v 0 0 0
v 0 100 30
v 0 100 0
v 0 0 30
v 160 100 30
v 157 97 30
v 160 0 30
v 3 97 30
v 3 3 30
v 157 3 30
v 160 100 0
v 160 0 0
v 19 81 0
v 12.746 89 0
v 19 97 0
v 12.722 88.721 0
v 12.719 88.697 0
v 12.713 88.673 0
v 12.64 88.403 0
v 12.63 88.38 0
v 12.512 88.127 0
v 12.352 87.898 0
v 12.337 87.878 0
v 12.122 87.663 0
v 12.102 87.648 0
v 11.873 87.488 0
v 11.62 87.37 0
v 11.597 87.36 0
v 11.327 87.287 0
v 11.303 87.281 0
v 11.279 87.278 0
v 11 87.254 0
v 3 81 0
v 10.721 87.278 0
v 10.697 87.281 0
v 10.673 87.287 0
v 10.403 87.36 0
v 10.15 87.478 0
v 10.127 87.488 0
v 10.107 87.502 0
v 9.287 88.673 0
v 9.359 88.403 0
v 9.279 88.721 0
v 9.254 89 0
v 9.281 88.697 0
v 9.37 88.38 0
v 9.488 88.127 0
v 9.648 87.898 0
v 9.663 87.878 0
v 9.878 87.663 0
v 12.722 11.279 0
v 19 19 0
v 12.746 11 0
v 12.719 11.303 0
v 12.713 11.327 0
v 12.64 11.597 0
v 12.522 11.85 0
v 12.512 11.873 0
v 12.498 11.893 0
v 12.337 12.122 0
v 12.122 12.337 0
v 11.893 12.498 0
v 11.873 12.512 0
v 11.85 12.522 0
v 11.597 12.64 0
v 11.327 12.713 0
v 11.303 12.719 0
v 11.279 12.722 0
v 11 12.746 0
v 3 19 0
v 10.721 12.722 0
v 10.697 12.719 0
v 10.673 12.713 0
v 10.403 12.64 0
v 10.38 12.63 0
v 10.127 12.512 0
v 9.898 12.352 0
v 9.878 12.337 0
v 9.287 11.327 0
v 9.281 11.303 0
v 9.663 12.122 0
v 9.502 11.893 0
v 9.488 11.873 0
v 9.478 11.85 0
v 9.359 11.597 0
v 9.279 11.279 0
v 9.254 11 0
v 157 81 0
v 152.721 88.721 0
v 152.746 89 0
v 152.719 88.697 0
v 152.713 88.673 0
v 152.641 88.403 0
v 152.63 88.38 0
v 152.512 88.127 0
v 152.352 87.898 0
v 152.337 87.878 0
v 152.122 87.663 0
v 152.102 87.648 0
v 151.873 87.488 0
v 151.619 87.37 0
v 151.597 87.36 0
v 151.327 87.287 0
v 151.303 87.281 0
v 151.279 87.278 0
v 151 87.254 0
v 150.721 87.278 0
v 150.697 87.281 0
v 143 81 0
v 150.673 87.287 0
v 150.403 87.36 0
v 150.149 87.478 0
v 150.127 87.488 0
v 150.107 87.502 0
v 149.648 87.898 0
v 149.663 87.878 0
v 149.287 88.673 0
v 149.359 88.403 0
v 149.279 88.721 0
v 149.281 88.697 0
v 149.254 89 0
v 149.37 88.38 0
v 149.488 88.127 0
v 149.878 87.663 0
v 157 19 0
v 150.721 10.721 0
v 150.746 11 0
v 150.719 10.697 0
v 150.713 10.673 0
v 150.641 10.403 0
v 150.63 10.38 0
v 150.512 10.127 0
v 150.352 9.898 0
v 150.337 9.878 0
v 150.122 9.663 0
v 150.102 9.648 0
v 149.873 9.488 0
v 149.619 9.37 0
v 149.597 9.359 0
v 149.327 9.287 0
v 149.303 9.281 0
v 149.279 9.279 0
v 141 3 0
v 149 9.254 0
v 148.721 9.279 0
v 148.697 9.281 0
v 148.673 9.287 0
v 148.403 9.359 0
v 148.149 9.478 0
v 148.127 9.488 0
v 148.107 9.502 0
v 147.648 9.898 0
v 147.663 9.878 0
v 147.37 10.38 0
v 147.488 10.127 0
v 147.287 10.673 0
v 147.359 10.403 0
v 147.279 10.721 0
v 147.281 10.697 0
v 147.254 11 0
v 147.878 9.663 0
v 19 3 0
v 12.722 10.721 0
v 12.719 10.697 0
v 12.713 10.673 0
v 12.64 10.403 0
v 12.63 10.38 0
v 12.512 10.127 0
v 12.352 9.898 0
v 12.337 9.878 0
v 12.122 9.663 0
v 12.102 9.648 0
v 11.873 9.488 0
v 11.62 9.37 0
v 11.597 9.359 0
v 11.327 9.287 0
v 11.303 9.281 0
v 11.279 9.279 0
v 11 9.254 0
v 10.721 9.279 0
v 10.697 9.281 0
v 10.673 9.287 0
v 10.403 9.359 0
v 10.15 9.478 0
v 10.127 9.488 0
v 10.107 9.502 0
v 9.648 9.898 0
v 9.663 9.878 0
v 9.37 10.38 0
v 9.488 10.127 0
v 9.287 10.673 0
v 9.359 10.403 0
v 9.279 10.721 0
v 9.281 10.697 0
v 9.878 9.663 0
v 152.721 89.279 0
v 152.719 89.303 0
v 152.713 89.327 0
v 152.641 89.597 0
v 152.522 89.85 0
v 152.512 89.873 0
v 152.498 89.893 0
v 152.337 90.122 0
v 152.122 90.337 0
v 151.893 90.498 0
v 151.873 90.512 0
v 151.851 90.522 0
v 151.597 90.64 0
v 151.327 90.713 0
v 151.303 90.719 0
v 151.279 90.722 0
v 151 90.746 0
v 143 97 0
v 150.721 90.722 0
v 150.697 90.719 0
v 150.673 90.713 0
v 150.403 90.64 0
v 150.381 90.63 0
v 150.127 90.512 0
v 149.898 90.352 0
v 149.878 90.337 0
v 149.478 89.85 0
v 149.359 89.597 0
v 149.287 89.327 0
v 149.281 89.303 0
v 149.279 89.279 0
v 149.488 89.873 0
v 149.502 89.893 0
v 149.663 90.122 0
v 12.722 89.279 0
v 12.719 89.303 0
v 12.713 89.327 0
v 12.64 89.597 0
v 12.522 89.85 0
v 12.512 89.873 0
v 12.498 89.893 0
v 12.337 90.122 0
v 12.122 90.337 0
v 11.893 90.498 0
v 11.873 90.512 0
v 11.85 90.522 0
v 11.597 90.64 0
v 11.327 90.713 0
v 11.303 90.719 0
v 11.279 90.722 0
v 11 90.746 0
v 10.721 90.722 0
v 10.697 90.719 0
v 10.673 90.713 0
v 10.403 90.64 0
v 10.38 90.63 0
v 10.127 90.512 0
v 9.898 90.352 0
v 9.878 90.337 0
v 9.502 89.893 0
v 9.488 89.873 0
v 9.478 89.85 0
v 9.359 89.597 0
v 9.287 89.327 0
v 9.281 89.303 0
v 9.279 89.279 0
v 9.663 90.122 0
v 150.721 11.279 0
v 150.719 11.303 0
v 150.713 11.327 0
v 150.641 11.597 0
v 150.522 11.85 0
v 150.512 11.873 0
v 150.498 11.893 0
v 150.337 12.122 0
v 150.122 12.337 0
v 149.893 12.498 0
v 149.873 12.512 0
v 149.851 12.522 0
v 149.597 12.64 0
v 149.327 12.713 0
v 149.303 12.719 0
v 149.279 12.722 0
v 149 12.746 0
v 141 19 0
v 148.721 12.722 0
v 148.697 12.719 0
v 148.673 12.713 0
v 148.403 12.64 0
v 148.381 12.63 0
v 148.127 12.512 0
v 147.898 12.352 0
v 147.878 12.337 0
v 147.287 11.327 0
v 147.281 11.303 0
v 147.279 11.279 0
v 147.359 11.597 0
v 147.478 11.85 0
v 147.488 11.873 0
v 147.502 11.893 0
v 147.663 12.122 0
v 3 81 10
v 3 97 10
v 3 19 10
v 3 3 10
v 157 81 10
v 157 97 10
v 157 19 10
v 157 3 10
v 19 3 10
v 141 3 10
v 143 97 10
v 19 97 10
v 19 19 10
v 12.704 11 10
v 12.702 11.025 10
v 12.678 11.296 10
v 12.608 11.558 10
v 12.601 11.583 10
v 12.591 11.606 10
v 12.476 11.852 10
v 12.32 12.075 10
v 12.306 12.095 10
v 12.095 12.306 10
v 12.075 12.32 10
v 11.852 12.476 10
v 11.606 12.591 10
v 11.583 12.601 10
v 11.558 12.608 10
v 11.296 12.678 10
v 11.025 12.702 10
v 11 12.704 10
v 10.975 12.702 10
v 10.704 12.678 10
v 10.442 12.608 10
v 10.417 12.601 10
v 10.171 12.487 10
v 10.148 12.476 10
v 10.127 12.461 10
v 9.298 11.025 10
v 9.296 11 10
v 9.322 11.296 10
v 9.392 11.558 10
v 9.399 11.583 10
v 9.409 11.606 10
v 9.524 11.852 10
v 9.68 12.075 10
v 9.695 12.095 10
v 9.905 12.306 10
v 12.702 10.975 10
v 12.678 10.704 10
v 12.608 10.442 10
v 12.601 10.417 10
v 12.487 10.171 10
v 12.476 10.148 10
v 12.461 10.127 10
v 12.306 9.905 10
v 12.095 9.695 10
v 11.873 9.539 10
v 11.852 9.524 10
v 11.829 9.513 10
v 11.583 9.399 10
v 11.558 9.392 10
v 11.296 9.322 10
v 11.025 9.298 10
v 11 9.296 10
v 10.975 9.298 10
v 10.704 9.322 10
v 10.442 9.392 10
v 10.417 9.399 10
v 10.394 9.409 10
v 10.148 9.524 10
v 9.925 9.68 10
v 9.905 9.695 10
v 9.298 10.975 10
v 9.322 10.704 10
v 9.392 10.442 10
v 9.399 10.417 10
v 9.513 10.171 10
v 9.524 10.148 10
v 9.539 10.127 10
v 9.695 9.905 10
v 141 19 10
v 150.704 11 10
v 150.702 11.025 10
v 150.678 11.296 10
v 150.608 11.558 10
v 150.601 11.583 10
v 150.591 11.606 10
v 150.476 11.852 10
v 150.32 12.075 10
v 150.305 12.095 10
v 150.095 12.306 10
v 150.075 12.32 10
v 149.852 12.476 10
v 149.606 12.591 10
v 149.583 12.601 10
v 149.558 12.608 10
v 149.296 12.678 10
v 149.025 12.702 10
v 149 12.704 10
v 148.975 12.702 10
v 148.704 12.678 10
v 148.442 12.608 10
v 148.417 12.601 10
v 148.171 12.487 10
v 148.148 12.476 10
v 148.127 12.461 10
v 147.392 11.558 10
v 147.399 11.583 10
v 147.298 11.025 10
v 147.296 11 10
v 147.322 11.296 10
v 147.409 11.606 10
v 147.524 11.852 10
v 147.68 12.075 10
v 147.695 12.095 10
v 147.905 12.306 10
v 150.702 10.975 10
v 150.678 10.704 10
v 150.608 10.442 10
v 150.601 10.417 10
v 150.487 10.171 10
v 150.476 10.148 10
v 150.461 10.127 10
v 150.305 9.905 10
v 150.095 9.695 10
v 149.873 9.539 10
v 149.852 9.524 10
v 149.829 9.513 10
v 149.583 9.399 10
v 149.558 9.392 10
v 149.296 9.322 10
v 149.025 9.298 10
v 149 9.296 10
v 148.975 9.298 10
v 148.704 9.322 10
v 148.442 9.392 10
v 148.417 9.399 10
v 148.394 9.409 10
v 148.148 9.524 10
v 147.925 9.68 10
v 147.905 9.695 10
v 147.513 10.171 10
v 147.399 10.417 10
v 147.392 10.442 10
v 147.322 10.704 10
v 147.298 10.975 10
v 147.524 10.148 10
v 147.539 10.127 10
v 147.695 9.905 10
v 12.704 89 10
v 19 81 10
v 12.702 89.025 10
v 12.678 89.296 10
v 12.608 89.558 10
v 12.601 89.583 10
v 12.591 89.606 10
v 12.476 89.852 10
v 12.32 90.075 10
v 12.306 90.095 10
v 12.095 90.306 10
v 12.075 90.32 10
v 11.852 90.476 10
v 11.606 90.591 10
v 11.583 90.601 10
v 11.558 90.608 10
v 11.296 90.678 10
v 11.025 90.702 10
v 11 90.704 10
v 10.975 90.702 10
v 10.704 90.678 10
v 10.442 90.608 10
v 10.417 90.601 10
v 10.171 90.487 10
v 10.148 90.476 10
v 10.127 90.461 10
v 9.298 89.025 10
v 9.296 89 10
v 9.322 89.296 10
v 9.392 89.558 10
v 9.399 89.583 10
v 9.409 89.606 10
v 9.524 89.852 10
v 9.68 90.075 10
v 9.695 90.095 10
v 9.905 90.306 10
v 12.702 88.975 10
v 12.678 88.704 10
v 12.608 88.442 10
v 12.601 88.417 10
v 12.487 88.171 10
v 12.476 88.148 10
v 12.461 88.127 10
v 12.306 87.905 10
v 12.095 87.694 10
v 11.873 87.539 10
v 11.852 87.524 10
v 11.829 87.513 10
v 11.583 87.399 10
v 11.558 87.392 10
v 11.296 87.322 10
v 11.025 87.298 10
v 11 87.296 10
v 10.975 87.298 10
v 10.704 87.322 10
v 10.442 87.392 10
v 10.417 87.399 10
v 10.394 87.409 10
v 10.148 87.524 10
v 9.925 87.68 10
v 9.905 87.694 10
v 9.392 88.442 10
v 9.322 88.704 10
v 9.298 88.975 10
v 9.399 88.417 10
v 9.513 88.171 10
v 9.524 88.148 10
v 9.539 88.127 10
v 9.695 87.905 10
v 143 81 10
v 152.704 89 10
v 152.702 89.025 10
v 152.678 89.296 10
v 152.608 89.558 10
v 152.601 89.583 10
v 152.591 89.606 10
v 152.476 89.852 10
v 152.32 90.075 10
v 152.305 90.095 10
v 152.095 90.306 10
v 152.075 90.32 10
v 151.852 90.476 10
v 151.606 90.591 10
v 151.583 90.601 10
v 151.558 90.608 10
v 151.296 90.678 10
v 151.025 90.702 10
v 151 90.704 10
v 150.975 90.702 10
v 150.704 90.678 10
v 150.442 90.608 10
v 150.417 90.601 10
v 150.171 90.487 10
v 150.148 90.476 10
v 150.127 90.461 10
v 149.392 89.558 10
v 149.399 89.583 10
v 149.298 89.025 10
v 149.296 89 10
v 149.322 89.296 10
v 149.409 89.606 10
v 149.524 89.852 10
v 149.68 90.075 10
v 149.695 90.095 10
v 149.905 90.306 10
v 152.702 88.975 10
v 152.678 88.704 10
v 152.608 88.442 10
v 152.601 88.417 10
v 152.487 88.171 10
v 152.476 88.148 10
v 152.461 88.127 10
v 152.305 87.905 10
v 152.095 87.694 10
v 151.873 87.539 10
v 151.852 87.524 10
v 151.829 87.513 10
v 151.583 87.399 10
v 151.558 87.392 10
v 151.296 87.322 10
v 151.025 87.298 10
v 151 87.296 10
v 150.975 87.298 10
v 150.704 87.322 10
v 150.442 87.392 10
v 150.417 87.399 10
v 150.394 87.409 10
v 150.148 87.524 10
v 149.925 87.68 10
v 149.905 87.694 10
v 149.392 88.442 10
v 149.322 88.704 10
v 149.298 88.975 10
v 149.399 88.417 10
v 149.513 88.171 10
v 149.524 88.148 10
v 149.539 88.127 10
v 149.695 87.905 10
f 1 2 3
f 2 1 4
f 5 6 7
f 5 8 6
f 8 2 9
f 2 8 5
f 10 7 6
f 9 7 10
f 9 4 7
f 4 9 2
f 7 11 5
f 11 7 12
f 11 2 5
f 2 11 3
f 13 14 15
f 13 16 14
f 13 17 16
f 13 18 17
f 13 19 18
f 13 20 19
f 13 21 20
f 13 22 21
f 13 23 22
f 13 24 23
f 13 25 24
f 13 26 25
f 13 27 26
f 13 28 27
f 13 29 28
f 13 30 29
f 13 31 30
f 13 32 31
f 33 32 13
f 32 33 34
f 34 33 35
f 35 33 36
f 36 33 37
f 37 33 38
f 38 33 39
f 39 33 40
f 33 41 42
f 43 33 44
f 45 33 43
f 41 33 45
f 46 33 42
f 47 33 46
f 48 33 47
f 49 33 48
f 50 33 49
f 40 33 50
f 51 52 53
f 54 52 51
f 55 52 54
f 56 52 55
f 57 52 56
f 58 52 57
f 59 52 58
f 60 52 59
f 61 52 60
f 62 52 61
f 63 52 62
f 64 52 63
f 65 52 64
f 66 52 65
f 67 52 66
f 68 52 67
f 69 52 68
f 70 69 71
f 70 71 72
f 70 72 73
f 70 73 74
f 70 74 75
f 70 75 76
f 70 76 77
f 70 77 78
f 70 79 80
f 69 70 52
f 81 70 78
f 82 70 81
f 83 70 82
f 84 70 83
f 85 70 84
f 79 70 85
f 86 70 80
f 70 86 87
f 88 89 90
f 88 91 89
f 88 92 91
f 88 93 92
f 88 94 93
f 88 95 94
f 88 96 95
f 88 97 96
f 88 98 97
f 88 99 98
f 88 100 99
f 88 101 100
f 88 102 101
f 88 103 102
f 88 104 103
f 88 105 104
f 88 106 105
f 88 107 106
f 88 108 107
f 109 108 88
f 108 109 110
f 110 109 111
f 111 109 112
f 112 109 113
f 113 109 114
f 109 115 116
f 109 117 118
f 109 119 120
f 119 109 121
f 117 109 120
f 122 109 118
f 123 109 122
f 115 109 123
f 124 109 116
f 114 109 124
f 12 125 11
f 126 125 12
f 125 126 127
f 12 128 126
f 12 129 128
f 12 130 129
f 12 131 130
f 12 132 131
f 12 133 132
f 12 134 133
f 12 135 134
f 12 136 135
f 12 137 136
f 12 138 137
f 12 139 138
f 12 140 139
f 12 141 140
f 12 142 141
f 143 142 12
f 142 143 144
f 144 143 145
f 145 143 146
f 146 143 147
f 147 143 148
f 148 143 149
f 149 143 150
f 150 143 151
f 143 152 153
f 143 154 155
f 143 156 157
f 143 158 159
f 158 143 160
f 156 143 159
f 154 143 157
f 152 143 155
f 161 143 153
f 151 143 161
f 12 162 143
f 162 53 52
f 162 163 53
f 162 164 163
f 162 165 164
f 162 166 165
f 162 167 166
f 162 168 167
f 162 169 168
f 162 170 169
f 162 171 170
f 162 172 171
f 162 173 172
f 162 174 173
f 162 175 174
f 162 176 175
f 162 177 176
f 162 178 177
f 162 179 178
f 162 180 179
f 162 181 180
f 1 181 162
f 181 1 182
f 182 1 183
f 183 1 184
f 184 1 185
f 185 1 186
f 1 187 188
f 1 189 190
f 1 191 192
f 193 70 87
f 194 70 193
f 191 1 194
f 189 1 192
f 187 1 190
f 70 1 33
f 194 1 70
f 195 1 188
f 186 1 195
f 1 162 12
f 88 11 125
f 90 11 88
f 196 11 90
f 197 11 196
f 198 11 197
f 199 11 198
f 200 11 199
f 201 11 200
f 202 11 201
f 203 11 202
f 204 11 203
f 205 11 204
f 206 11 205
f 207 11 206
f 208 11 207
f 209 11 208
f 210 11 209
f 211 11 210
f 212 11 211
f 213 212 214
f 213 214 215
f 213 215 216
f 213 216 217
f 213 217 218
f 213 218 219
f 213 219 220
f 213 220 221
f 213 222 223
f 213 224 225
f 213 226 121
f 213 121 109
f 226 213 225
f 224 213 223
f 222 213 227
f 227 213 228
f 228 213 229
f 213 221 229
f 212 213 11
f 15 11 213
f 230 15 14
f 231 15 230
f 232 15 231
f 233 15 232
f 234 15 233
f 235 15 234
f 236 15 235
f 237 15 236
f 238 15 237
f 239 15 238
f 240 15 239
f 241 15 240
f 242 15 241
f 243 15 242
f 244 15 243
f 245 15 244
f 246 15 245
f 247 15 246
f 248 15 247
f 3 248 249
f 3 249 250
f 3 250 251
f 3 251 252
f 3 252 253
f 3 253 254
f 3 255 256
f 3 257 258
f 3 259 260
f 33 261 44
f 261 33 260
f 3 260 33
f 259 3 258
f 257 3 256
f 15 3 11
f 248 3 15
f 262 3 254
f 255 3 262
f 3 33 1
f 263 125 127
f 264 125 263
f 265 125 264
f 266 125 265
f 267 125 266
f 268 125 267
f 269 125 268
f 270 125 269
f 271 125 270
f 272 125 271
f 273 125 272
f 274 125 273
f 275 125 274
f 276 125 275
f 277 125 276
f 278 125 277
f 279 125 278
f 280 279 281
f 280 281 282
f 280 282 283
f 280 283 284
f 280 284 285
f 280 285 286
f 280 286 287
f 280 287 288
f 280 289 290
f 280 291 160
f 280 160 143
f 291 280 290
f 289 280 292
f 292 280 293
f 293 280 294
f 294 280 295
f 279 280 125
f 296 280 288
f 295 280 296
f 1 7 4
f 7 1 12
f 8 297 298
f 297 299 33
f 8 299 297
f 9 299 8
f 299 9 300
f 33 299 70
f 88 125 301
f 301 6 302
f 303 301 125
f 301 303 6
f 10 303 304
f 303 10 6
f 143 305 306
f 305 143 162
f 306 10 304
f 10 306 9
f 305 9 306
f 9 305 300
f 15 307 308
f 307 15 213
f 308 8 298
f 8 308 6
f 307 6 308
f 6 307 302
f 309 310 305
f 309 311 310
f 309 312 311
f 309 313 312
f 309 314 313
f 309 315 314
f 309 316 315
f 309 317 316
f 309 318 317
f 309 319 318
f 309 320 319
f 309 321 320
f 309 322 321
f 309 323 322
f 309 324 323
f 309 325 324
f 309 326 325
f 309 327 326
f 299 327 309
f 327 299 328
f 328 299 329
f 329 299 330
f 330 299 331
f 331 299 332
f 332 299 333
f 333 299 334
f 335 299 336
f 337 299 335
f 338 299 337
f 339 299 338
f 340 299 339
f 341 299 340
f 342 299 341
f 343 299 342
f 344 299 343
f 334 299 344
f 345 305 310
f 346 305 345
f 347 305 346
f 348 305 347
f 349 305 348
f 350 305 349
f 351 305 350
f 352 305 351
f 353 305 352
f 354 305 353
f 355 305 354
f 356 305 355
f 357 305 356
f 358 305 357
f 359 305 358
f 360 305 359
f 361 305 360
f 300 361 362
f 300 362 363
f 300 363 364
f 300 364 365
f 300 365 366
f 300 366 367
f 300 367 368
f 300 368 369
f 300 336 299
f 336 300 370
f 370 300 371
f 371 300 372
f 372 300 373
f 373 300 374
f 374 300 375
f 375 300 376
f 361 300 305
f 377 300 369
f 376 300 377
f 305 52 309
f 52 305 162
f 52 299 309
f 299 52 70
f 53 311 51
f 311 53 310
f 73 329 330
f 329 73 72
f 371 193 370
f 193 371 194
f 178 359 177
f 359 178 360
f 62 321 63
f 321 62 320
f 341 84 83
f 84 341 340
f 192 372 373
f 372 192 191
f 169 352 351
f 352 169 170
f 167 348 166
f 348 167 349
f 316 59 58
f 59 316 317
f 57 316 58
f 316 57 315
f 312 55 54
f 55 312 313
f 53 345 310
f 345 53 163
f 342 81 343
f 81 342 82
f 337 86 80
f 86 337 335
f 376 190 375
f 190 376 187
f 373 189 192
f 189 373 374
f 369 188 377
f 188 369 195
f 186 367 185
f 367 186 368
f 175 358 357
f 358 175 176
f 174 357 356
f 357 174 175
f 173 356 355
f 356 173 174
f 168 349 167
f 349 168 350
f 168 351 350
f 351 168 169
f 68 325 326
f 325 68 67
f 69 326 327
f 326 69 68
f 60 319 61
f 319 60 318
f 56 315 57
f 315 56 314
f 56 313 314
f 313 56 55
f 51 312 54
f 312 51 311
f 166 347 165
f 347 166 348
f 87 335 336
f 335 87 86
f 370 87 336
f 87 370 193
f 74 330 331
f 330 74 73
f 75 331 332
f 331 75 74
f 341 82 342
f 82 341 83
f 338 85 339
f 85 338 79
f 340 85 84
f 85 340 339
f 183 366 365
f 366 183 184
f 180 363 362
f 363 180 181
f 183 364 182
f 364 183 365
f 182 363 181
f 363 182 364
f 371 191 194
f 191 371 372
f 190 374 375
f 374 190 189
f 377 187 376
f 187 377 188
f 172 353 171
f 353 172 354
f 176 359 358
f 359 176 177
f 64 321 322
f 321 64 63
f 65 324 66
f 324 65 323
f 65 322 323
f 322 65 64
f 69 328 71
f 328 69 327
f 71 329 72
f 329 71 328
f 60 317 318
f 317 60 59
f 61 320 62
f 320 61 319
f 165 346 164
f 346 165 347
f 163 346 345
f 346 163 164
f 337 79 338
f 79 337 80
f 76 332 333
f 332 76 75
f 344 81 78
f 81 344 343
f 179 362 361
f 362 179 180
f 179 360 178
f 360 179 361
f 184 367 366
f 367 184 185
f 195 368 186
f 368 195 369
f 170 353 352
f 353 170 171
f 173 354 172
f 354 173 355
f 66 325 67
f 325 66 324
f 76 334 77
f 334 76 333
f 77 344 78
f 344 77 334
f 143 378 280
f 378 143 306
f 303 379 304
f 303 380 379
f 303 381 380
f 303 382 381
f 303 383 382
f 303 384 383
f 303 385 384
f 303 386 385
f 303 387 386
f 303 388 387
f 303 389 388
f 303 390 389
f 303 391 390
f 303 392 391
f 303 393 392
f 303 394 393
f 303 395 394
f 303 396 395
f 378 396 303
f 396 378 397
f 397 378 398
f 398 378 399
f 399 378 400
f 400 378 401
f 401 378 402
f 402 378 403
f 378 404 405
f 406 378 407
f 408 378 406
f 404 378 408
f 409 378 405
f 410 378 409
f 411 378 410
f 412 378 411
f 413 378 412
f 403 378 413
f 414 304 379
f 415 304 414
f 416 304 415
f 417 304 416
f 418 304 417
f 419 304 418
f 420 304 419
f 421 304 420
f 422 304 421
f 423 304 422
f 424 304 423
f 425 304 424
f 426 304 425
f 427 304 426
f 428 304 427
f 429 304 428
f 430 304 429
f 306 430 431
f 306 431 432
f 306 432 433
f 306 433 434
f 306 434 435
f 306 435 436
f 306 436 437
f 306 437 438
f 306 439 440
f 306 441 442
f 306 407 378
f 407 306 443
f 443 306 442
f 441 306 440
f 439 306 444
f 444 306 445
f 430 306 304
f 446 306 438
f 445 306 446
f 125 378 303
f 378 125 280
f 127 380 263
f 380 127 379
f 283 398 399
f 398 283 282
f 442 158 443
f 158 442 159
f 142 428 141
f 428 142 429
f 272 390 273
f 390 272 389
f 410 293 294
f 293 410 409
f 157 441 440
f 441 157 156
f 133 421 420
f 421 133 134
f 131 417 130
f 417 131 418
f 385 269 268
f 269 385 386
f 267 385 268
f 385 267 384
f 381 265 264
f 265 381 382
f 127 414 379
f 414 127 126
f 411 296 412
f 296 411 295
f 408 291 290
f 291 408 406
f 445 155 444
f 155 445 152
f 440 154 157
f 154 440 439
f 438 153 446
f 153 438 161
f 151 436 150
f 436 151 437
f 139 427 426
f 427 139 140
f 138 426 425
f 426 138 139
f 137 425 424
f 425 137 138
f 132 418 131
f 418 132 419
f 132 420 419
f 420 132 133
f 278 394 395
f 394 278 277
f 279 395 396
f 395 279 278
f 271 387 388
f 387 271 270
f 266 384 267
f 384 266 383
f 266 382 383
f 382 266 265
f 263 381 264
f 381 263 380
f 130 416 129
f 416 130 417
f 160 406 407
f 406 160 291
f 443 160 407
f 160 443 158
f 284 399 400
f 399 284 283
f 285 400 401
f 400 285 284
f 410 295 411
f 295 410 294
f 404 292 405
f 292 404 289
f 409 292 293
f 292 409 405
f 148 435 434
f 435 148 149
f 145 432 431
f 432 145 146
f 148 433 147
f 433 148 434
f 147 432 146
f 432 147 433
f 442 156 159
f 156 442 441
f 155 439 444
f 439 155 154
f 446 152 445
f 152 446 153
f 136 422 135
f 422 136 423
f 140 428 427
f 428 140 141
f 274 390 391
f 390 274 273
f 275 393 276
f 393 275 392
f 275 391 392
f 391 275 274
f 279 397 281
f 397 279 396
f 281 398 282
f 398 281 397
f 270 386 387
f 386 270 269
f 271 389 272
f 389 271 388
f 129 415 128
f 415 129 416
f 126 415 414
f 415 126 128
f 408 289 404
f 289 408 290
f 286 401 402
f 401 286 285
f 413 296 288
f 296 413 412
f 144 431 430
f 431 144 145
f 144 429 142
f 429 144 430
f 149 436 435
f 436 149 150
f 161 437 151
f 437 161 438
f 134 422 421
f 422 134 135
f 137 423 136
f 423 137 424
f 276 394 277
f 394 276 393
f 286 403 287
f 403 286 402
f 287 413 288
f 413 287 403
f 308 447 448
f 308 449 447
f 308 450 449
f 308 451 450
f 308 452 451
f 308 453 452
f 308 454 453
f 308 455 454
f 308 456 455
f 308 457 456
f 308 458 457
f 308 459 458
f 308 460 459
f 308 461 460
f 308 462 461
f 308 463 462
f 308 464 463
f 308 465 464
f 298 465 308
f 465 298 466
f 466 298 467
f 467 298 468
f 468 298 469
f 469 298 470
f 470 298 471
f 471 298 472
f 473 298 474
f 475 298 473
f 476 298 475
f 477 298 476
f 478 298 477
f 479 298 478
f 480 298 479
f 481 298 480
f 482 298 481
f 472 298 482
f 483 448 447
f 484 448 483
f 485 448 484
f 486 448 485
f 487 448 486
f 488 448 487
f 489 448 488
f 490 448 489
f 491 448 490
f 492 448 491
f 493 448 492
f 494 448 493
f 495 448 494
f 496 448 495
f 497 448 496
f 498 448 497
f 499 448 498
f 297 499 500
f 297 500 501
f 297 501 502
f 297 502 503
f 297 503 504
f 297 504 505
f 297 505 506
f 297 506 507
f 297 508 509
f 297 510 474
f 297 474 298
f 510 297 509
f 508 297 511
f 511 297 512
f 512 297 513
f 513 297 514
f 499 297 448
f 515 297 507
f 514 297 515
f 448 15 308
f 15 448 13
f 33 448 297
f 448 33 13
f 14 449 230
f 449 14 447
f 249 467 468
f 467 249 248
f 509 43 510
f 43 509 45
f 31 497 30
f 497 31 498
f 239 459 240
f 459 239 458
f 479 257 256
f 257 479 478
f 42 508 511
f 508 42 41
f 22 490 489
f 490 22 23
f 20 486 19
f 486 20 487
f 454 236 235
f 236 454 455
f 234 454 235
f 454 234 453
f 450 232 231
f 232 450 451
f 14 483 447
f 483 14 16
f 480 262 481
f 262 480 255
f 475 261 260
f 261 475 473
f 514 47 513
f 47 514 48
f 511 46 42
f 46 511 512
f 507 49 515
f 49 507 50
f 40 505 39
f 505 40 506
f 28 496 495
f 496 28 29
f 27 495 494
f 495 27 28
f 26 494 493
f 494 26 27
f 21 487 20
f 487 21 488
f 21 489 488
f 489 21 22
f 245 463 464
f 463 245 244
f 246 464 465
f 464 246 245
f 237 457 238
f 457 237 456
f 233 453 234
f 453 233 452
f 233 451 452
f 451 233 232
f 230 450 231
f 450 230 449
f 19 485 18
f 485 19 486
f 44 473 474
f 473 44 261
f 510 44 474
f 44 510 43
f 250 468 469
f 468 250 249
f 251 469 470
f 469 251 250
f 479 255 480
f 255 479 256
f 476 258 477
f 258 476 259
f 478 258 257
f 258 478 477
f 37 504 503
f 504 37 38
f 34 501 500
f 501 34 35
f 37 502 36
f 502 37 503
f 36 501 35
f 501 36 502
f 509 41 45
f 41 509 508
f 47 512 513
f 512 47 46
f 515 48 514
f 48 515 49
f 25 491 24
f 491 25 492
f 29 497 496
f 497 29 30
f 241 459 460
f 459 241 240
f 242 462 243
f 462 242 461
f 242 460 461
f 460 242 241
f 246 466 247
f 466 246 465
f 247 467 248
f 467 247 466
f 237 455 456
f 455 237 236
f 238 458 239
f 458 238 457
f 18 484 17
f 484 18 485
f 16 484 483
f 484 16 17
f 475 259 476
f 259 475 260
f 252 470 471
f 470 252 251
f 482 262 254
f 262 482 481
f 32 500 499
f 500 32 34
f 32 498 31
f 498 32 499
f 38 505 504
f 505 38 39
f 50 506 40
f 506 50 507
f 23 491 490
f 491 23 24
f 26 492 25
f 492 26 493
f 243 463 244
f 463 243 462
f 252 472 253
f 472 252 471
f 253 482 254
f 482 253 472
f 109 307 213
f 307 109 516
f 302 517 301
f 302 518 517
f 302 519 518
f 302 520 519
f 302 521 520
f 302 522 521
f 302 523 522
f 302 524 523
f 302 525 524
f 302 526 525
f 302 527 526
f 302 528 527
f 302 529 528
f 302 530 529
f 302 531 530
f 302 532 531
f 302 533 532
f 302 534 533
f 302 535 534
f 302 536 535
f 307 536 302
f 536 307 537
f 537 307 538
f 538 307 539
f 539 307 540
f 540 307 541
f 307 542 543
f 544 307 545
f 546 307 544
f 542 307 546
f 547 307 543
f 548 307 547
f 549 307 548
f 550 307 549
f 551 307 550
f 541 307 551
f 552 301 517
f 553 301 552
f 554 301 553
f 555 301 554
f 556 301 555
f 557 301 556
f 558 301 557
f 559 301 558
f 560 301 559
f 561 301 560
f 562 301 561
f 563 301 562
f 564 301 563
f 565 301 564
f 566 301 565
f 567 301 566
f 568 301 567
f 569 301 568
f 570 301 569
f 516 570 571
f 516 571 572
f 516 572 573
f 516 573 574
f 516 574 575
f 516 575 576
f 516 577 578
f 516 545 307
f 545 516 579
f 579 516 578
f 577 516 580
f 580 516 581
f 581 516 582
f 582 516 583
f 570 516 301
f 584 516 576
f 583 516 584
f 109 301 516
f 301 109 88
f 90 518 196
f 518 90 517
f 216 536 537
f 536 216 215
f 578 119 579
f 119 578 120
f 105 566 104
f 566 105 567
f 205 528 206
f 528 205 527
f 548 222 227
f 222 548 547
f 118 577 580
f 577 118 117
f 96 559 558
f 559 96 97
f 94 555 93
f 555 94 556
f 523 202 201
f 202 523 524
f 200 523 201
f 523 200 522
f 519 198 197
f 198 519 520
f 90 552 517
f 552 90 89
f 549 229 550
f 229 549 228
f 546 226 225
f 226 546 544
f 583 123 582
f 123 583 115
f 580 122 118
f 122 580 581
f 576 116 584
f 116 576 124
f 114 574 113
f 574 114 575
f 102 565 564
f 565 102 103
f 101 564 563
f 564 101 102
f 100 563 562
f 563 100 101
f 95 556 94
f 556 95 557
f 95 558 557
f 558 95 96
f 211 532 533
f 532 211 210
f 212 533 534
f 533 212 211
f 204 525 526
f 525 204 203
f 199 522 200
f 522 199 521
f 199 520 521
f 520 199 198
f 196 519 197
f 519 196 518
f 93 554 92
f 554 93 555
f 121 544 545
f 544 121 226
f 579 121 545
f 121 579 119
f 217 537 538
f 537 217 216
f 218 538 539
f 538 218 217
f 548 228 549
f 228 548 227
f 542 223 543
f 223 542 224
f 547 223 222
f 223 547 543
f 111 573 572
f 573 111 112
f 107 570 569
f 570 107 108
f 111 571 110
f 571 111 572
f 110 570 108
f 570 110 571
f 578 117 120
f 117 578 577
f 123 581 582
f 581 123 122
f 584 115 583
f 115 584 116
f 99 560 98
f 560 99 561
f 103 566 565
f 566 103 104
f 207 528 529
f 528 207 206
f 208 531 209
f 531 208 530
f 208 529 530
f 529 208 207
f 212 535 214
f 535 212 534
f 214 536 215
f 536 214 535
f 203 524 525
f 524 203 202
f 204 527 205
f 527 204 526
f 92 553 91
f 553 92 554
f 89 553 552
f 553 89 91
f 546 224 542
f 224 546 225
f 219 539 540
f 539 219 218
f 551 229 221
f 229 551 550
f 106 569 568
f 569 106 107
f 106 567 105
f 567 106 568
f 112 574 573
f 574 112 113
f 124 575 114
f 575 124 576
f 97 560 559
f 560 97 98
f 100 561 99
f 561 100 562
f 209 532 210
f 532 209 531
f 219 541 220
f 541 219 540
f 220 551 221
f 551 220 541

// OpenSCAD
difference() {
    cube([160,100,30]);
    translate([3,3,-1.0])
    cube([154,94,100]);
}


translate([3,3,0])
difference() {
    cube([16,16,10]);
    translate([8,8,-1])
    cylinder(h=12, d1=3.5, d2=3.4, $fn=36);
}


translate([141,3,0])
difference() {
    cube([16,16,10]);
    translate([8,8,-1])
    cylinder(h=12, d1=3.5, d2=3.4, $fn=36);
}


translate([3,81,0])
difference() {
    cube([16,16,10]);
    translate([8,8,-1])
    cylinder(h=12, d1=3.5, d2=3.4, $fn=36);
}


translate([143,81,0])
difference() {
    cube([16,16,10]);
    translate([8,8,-1])
    cylinder(h=12, d1=3.5, d2=3.4, $fn=36);
}
